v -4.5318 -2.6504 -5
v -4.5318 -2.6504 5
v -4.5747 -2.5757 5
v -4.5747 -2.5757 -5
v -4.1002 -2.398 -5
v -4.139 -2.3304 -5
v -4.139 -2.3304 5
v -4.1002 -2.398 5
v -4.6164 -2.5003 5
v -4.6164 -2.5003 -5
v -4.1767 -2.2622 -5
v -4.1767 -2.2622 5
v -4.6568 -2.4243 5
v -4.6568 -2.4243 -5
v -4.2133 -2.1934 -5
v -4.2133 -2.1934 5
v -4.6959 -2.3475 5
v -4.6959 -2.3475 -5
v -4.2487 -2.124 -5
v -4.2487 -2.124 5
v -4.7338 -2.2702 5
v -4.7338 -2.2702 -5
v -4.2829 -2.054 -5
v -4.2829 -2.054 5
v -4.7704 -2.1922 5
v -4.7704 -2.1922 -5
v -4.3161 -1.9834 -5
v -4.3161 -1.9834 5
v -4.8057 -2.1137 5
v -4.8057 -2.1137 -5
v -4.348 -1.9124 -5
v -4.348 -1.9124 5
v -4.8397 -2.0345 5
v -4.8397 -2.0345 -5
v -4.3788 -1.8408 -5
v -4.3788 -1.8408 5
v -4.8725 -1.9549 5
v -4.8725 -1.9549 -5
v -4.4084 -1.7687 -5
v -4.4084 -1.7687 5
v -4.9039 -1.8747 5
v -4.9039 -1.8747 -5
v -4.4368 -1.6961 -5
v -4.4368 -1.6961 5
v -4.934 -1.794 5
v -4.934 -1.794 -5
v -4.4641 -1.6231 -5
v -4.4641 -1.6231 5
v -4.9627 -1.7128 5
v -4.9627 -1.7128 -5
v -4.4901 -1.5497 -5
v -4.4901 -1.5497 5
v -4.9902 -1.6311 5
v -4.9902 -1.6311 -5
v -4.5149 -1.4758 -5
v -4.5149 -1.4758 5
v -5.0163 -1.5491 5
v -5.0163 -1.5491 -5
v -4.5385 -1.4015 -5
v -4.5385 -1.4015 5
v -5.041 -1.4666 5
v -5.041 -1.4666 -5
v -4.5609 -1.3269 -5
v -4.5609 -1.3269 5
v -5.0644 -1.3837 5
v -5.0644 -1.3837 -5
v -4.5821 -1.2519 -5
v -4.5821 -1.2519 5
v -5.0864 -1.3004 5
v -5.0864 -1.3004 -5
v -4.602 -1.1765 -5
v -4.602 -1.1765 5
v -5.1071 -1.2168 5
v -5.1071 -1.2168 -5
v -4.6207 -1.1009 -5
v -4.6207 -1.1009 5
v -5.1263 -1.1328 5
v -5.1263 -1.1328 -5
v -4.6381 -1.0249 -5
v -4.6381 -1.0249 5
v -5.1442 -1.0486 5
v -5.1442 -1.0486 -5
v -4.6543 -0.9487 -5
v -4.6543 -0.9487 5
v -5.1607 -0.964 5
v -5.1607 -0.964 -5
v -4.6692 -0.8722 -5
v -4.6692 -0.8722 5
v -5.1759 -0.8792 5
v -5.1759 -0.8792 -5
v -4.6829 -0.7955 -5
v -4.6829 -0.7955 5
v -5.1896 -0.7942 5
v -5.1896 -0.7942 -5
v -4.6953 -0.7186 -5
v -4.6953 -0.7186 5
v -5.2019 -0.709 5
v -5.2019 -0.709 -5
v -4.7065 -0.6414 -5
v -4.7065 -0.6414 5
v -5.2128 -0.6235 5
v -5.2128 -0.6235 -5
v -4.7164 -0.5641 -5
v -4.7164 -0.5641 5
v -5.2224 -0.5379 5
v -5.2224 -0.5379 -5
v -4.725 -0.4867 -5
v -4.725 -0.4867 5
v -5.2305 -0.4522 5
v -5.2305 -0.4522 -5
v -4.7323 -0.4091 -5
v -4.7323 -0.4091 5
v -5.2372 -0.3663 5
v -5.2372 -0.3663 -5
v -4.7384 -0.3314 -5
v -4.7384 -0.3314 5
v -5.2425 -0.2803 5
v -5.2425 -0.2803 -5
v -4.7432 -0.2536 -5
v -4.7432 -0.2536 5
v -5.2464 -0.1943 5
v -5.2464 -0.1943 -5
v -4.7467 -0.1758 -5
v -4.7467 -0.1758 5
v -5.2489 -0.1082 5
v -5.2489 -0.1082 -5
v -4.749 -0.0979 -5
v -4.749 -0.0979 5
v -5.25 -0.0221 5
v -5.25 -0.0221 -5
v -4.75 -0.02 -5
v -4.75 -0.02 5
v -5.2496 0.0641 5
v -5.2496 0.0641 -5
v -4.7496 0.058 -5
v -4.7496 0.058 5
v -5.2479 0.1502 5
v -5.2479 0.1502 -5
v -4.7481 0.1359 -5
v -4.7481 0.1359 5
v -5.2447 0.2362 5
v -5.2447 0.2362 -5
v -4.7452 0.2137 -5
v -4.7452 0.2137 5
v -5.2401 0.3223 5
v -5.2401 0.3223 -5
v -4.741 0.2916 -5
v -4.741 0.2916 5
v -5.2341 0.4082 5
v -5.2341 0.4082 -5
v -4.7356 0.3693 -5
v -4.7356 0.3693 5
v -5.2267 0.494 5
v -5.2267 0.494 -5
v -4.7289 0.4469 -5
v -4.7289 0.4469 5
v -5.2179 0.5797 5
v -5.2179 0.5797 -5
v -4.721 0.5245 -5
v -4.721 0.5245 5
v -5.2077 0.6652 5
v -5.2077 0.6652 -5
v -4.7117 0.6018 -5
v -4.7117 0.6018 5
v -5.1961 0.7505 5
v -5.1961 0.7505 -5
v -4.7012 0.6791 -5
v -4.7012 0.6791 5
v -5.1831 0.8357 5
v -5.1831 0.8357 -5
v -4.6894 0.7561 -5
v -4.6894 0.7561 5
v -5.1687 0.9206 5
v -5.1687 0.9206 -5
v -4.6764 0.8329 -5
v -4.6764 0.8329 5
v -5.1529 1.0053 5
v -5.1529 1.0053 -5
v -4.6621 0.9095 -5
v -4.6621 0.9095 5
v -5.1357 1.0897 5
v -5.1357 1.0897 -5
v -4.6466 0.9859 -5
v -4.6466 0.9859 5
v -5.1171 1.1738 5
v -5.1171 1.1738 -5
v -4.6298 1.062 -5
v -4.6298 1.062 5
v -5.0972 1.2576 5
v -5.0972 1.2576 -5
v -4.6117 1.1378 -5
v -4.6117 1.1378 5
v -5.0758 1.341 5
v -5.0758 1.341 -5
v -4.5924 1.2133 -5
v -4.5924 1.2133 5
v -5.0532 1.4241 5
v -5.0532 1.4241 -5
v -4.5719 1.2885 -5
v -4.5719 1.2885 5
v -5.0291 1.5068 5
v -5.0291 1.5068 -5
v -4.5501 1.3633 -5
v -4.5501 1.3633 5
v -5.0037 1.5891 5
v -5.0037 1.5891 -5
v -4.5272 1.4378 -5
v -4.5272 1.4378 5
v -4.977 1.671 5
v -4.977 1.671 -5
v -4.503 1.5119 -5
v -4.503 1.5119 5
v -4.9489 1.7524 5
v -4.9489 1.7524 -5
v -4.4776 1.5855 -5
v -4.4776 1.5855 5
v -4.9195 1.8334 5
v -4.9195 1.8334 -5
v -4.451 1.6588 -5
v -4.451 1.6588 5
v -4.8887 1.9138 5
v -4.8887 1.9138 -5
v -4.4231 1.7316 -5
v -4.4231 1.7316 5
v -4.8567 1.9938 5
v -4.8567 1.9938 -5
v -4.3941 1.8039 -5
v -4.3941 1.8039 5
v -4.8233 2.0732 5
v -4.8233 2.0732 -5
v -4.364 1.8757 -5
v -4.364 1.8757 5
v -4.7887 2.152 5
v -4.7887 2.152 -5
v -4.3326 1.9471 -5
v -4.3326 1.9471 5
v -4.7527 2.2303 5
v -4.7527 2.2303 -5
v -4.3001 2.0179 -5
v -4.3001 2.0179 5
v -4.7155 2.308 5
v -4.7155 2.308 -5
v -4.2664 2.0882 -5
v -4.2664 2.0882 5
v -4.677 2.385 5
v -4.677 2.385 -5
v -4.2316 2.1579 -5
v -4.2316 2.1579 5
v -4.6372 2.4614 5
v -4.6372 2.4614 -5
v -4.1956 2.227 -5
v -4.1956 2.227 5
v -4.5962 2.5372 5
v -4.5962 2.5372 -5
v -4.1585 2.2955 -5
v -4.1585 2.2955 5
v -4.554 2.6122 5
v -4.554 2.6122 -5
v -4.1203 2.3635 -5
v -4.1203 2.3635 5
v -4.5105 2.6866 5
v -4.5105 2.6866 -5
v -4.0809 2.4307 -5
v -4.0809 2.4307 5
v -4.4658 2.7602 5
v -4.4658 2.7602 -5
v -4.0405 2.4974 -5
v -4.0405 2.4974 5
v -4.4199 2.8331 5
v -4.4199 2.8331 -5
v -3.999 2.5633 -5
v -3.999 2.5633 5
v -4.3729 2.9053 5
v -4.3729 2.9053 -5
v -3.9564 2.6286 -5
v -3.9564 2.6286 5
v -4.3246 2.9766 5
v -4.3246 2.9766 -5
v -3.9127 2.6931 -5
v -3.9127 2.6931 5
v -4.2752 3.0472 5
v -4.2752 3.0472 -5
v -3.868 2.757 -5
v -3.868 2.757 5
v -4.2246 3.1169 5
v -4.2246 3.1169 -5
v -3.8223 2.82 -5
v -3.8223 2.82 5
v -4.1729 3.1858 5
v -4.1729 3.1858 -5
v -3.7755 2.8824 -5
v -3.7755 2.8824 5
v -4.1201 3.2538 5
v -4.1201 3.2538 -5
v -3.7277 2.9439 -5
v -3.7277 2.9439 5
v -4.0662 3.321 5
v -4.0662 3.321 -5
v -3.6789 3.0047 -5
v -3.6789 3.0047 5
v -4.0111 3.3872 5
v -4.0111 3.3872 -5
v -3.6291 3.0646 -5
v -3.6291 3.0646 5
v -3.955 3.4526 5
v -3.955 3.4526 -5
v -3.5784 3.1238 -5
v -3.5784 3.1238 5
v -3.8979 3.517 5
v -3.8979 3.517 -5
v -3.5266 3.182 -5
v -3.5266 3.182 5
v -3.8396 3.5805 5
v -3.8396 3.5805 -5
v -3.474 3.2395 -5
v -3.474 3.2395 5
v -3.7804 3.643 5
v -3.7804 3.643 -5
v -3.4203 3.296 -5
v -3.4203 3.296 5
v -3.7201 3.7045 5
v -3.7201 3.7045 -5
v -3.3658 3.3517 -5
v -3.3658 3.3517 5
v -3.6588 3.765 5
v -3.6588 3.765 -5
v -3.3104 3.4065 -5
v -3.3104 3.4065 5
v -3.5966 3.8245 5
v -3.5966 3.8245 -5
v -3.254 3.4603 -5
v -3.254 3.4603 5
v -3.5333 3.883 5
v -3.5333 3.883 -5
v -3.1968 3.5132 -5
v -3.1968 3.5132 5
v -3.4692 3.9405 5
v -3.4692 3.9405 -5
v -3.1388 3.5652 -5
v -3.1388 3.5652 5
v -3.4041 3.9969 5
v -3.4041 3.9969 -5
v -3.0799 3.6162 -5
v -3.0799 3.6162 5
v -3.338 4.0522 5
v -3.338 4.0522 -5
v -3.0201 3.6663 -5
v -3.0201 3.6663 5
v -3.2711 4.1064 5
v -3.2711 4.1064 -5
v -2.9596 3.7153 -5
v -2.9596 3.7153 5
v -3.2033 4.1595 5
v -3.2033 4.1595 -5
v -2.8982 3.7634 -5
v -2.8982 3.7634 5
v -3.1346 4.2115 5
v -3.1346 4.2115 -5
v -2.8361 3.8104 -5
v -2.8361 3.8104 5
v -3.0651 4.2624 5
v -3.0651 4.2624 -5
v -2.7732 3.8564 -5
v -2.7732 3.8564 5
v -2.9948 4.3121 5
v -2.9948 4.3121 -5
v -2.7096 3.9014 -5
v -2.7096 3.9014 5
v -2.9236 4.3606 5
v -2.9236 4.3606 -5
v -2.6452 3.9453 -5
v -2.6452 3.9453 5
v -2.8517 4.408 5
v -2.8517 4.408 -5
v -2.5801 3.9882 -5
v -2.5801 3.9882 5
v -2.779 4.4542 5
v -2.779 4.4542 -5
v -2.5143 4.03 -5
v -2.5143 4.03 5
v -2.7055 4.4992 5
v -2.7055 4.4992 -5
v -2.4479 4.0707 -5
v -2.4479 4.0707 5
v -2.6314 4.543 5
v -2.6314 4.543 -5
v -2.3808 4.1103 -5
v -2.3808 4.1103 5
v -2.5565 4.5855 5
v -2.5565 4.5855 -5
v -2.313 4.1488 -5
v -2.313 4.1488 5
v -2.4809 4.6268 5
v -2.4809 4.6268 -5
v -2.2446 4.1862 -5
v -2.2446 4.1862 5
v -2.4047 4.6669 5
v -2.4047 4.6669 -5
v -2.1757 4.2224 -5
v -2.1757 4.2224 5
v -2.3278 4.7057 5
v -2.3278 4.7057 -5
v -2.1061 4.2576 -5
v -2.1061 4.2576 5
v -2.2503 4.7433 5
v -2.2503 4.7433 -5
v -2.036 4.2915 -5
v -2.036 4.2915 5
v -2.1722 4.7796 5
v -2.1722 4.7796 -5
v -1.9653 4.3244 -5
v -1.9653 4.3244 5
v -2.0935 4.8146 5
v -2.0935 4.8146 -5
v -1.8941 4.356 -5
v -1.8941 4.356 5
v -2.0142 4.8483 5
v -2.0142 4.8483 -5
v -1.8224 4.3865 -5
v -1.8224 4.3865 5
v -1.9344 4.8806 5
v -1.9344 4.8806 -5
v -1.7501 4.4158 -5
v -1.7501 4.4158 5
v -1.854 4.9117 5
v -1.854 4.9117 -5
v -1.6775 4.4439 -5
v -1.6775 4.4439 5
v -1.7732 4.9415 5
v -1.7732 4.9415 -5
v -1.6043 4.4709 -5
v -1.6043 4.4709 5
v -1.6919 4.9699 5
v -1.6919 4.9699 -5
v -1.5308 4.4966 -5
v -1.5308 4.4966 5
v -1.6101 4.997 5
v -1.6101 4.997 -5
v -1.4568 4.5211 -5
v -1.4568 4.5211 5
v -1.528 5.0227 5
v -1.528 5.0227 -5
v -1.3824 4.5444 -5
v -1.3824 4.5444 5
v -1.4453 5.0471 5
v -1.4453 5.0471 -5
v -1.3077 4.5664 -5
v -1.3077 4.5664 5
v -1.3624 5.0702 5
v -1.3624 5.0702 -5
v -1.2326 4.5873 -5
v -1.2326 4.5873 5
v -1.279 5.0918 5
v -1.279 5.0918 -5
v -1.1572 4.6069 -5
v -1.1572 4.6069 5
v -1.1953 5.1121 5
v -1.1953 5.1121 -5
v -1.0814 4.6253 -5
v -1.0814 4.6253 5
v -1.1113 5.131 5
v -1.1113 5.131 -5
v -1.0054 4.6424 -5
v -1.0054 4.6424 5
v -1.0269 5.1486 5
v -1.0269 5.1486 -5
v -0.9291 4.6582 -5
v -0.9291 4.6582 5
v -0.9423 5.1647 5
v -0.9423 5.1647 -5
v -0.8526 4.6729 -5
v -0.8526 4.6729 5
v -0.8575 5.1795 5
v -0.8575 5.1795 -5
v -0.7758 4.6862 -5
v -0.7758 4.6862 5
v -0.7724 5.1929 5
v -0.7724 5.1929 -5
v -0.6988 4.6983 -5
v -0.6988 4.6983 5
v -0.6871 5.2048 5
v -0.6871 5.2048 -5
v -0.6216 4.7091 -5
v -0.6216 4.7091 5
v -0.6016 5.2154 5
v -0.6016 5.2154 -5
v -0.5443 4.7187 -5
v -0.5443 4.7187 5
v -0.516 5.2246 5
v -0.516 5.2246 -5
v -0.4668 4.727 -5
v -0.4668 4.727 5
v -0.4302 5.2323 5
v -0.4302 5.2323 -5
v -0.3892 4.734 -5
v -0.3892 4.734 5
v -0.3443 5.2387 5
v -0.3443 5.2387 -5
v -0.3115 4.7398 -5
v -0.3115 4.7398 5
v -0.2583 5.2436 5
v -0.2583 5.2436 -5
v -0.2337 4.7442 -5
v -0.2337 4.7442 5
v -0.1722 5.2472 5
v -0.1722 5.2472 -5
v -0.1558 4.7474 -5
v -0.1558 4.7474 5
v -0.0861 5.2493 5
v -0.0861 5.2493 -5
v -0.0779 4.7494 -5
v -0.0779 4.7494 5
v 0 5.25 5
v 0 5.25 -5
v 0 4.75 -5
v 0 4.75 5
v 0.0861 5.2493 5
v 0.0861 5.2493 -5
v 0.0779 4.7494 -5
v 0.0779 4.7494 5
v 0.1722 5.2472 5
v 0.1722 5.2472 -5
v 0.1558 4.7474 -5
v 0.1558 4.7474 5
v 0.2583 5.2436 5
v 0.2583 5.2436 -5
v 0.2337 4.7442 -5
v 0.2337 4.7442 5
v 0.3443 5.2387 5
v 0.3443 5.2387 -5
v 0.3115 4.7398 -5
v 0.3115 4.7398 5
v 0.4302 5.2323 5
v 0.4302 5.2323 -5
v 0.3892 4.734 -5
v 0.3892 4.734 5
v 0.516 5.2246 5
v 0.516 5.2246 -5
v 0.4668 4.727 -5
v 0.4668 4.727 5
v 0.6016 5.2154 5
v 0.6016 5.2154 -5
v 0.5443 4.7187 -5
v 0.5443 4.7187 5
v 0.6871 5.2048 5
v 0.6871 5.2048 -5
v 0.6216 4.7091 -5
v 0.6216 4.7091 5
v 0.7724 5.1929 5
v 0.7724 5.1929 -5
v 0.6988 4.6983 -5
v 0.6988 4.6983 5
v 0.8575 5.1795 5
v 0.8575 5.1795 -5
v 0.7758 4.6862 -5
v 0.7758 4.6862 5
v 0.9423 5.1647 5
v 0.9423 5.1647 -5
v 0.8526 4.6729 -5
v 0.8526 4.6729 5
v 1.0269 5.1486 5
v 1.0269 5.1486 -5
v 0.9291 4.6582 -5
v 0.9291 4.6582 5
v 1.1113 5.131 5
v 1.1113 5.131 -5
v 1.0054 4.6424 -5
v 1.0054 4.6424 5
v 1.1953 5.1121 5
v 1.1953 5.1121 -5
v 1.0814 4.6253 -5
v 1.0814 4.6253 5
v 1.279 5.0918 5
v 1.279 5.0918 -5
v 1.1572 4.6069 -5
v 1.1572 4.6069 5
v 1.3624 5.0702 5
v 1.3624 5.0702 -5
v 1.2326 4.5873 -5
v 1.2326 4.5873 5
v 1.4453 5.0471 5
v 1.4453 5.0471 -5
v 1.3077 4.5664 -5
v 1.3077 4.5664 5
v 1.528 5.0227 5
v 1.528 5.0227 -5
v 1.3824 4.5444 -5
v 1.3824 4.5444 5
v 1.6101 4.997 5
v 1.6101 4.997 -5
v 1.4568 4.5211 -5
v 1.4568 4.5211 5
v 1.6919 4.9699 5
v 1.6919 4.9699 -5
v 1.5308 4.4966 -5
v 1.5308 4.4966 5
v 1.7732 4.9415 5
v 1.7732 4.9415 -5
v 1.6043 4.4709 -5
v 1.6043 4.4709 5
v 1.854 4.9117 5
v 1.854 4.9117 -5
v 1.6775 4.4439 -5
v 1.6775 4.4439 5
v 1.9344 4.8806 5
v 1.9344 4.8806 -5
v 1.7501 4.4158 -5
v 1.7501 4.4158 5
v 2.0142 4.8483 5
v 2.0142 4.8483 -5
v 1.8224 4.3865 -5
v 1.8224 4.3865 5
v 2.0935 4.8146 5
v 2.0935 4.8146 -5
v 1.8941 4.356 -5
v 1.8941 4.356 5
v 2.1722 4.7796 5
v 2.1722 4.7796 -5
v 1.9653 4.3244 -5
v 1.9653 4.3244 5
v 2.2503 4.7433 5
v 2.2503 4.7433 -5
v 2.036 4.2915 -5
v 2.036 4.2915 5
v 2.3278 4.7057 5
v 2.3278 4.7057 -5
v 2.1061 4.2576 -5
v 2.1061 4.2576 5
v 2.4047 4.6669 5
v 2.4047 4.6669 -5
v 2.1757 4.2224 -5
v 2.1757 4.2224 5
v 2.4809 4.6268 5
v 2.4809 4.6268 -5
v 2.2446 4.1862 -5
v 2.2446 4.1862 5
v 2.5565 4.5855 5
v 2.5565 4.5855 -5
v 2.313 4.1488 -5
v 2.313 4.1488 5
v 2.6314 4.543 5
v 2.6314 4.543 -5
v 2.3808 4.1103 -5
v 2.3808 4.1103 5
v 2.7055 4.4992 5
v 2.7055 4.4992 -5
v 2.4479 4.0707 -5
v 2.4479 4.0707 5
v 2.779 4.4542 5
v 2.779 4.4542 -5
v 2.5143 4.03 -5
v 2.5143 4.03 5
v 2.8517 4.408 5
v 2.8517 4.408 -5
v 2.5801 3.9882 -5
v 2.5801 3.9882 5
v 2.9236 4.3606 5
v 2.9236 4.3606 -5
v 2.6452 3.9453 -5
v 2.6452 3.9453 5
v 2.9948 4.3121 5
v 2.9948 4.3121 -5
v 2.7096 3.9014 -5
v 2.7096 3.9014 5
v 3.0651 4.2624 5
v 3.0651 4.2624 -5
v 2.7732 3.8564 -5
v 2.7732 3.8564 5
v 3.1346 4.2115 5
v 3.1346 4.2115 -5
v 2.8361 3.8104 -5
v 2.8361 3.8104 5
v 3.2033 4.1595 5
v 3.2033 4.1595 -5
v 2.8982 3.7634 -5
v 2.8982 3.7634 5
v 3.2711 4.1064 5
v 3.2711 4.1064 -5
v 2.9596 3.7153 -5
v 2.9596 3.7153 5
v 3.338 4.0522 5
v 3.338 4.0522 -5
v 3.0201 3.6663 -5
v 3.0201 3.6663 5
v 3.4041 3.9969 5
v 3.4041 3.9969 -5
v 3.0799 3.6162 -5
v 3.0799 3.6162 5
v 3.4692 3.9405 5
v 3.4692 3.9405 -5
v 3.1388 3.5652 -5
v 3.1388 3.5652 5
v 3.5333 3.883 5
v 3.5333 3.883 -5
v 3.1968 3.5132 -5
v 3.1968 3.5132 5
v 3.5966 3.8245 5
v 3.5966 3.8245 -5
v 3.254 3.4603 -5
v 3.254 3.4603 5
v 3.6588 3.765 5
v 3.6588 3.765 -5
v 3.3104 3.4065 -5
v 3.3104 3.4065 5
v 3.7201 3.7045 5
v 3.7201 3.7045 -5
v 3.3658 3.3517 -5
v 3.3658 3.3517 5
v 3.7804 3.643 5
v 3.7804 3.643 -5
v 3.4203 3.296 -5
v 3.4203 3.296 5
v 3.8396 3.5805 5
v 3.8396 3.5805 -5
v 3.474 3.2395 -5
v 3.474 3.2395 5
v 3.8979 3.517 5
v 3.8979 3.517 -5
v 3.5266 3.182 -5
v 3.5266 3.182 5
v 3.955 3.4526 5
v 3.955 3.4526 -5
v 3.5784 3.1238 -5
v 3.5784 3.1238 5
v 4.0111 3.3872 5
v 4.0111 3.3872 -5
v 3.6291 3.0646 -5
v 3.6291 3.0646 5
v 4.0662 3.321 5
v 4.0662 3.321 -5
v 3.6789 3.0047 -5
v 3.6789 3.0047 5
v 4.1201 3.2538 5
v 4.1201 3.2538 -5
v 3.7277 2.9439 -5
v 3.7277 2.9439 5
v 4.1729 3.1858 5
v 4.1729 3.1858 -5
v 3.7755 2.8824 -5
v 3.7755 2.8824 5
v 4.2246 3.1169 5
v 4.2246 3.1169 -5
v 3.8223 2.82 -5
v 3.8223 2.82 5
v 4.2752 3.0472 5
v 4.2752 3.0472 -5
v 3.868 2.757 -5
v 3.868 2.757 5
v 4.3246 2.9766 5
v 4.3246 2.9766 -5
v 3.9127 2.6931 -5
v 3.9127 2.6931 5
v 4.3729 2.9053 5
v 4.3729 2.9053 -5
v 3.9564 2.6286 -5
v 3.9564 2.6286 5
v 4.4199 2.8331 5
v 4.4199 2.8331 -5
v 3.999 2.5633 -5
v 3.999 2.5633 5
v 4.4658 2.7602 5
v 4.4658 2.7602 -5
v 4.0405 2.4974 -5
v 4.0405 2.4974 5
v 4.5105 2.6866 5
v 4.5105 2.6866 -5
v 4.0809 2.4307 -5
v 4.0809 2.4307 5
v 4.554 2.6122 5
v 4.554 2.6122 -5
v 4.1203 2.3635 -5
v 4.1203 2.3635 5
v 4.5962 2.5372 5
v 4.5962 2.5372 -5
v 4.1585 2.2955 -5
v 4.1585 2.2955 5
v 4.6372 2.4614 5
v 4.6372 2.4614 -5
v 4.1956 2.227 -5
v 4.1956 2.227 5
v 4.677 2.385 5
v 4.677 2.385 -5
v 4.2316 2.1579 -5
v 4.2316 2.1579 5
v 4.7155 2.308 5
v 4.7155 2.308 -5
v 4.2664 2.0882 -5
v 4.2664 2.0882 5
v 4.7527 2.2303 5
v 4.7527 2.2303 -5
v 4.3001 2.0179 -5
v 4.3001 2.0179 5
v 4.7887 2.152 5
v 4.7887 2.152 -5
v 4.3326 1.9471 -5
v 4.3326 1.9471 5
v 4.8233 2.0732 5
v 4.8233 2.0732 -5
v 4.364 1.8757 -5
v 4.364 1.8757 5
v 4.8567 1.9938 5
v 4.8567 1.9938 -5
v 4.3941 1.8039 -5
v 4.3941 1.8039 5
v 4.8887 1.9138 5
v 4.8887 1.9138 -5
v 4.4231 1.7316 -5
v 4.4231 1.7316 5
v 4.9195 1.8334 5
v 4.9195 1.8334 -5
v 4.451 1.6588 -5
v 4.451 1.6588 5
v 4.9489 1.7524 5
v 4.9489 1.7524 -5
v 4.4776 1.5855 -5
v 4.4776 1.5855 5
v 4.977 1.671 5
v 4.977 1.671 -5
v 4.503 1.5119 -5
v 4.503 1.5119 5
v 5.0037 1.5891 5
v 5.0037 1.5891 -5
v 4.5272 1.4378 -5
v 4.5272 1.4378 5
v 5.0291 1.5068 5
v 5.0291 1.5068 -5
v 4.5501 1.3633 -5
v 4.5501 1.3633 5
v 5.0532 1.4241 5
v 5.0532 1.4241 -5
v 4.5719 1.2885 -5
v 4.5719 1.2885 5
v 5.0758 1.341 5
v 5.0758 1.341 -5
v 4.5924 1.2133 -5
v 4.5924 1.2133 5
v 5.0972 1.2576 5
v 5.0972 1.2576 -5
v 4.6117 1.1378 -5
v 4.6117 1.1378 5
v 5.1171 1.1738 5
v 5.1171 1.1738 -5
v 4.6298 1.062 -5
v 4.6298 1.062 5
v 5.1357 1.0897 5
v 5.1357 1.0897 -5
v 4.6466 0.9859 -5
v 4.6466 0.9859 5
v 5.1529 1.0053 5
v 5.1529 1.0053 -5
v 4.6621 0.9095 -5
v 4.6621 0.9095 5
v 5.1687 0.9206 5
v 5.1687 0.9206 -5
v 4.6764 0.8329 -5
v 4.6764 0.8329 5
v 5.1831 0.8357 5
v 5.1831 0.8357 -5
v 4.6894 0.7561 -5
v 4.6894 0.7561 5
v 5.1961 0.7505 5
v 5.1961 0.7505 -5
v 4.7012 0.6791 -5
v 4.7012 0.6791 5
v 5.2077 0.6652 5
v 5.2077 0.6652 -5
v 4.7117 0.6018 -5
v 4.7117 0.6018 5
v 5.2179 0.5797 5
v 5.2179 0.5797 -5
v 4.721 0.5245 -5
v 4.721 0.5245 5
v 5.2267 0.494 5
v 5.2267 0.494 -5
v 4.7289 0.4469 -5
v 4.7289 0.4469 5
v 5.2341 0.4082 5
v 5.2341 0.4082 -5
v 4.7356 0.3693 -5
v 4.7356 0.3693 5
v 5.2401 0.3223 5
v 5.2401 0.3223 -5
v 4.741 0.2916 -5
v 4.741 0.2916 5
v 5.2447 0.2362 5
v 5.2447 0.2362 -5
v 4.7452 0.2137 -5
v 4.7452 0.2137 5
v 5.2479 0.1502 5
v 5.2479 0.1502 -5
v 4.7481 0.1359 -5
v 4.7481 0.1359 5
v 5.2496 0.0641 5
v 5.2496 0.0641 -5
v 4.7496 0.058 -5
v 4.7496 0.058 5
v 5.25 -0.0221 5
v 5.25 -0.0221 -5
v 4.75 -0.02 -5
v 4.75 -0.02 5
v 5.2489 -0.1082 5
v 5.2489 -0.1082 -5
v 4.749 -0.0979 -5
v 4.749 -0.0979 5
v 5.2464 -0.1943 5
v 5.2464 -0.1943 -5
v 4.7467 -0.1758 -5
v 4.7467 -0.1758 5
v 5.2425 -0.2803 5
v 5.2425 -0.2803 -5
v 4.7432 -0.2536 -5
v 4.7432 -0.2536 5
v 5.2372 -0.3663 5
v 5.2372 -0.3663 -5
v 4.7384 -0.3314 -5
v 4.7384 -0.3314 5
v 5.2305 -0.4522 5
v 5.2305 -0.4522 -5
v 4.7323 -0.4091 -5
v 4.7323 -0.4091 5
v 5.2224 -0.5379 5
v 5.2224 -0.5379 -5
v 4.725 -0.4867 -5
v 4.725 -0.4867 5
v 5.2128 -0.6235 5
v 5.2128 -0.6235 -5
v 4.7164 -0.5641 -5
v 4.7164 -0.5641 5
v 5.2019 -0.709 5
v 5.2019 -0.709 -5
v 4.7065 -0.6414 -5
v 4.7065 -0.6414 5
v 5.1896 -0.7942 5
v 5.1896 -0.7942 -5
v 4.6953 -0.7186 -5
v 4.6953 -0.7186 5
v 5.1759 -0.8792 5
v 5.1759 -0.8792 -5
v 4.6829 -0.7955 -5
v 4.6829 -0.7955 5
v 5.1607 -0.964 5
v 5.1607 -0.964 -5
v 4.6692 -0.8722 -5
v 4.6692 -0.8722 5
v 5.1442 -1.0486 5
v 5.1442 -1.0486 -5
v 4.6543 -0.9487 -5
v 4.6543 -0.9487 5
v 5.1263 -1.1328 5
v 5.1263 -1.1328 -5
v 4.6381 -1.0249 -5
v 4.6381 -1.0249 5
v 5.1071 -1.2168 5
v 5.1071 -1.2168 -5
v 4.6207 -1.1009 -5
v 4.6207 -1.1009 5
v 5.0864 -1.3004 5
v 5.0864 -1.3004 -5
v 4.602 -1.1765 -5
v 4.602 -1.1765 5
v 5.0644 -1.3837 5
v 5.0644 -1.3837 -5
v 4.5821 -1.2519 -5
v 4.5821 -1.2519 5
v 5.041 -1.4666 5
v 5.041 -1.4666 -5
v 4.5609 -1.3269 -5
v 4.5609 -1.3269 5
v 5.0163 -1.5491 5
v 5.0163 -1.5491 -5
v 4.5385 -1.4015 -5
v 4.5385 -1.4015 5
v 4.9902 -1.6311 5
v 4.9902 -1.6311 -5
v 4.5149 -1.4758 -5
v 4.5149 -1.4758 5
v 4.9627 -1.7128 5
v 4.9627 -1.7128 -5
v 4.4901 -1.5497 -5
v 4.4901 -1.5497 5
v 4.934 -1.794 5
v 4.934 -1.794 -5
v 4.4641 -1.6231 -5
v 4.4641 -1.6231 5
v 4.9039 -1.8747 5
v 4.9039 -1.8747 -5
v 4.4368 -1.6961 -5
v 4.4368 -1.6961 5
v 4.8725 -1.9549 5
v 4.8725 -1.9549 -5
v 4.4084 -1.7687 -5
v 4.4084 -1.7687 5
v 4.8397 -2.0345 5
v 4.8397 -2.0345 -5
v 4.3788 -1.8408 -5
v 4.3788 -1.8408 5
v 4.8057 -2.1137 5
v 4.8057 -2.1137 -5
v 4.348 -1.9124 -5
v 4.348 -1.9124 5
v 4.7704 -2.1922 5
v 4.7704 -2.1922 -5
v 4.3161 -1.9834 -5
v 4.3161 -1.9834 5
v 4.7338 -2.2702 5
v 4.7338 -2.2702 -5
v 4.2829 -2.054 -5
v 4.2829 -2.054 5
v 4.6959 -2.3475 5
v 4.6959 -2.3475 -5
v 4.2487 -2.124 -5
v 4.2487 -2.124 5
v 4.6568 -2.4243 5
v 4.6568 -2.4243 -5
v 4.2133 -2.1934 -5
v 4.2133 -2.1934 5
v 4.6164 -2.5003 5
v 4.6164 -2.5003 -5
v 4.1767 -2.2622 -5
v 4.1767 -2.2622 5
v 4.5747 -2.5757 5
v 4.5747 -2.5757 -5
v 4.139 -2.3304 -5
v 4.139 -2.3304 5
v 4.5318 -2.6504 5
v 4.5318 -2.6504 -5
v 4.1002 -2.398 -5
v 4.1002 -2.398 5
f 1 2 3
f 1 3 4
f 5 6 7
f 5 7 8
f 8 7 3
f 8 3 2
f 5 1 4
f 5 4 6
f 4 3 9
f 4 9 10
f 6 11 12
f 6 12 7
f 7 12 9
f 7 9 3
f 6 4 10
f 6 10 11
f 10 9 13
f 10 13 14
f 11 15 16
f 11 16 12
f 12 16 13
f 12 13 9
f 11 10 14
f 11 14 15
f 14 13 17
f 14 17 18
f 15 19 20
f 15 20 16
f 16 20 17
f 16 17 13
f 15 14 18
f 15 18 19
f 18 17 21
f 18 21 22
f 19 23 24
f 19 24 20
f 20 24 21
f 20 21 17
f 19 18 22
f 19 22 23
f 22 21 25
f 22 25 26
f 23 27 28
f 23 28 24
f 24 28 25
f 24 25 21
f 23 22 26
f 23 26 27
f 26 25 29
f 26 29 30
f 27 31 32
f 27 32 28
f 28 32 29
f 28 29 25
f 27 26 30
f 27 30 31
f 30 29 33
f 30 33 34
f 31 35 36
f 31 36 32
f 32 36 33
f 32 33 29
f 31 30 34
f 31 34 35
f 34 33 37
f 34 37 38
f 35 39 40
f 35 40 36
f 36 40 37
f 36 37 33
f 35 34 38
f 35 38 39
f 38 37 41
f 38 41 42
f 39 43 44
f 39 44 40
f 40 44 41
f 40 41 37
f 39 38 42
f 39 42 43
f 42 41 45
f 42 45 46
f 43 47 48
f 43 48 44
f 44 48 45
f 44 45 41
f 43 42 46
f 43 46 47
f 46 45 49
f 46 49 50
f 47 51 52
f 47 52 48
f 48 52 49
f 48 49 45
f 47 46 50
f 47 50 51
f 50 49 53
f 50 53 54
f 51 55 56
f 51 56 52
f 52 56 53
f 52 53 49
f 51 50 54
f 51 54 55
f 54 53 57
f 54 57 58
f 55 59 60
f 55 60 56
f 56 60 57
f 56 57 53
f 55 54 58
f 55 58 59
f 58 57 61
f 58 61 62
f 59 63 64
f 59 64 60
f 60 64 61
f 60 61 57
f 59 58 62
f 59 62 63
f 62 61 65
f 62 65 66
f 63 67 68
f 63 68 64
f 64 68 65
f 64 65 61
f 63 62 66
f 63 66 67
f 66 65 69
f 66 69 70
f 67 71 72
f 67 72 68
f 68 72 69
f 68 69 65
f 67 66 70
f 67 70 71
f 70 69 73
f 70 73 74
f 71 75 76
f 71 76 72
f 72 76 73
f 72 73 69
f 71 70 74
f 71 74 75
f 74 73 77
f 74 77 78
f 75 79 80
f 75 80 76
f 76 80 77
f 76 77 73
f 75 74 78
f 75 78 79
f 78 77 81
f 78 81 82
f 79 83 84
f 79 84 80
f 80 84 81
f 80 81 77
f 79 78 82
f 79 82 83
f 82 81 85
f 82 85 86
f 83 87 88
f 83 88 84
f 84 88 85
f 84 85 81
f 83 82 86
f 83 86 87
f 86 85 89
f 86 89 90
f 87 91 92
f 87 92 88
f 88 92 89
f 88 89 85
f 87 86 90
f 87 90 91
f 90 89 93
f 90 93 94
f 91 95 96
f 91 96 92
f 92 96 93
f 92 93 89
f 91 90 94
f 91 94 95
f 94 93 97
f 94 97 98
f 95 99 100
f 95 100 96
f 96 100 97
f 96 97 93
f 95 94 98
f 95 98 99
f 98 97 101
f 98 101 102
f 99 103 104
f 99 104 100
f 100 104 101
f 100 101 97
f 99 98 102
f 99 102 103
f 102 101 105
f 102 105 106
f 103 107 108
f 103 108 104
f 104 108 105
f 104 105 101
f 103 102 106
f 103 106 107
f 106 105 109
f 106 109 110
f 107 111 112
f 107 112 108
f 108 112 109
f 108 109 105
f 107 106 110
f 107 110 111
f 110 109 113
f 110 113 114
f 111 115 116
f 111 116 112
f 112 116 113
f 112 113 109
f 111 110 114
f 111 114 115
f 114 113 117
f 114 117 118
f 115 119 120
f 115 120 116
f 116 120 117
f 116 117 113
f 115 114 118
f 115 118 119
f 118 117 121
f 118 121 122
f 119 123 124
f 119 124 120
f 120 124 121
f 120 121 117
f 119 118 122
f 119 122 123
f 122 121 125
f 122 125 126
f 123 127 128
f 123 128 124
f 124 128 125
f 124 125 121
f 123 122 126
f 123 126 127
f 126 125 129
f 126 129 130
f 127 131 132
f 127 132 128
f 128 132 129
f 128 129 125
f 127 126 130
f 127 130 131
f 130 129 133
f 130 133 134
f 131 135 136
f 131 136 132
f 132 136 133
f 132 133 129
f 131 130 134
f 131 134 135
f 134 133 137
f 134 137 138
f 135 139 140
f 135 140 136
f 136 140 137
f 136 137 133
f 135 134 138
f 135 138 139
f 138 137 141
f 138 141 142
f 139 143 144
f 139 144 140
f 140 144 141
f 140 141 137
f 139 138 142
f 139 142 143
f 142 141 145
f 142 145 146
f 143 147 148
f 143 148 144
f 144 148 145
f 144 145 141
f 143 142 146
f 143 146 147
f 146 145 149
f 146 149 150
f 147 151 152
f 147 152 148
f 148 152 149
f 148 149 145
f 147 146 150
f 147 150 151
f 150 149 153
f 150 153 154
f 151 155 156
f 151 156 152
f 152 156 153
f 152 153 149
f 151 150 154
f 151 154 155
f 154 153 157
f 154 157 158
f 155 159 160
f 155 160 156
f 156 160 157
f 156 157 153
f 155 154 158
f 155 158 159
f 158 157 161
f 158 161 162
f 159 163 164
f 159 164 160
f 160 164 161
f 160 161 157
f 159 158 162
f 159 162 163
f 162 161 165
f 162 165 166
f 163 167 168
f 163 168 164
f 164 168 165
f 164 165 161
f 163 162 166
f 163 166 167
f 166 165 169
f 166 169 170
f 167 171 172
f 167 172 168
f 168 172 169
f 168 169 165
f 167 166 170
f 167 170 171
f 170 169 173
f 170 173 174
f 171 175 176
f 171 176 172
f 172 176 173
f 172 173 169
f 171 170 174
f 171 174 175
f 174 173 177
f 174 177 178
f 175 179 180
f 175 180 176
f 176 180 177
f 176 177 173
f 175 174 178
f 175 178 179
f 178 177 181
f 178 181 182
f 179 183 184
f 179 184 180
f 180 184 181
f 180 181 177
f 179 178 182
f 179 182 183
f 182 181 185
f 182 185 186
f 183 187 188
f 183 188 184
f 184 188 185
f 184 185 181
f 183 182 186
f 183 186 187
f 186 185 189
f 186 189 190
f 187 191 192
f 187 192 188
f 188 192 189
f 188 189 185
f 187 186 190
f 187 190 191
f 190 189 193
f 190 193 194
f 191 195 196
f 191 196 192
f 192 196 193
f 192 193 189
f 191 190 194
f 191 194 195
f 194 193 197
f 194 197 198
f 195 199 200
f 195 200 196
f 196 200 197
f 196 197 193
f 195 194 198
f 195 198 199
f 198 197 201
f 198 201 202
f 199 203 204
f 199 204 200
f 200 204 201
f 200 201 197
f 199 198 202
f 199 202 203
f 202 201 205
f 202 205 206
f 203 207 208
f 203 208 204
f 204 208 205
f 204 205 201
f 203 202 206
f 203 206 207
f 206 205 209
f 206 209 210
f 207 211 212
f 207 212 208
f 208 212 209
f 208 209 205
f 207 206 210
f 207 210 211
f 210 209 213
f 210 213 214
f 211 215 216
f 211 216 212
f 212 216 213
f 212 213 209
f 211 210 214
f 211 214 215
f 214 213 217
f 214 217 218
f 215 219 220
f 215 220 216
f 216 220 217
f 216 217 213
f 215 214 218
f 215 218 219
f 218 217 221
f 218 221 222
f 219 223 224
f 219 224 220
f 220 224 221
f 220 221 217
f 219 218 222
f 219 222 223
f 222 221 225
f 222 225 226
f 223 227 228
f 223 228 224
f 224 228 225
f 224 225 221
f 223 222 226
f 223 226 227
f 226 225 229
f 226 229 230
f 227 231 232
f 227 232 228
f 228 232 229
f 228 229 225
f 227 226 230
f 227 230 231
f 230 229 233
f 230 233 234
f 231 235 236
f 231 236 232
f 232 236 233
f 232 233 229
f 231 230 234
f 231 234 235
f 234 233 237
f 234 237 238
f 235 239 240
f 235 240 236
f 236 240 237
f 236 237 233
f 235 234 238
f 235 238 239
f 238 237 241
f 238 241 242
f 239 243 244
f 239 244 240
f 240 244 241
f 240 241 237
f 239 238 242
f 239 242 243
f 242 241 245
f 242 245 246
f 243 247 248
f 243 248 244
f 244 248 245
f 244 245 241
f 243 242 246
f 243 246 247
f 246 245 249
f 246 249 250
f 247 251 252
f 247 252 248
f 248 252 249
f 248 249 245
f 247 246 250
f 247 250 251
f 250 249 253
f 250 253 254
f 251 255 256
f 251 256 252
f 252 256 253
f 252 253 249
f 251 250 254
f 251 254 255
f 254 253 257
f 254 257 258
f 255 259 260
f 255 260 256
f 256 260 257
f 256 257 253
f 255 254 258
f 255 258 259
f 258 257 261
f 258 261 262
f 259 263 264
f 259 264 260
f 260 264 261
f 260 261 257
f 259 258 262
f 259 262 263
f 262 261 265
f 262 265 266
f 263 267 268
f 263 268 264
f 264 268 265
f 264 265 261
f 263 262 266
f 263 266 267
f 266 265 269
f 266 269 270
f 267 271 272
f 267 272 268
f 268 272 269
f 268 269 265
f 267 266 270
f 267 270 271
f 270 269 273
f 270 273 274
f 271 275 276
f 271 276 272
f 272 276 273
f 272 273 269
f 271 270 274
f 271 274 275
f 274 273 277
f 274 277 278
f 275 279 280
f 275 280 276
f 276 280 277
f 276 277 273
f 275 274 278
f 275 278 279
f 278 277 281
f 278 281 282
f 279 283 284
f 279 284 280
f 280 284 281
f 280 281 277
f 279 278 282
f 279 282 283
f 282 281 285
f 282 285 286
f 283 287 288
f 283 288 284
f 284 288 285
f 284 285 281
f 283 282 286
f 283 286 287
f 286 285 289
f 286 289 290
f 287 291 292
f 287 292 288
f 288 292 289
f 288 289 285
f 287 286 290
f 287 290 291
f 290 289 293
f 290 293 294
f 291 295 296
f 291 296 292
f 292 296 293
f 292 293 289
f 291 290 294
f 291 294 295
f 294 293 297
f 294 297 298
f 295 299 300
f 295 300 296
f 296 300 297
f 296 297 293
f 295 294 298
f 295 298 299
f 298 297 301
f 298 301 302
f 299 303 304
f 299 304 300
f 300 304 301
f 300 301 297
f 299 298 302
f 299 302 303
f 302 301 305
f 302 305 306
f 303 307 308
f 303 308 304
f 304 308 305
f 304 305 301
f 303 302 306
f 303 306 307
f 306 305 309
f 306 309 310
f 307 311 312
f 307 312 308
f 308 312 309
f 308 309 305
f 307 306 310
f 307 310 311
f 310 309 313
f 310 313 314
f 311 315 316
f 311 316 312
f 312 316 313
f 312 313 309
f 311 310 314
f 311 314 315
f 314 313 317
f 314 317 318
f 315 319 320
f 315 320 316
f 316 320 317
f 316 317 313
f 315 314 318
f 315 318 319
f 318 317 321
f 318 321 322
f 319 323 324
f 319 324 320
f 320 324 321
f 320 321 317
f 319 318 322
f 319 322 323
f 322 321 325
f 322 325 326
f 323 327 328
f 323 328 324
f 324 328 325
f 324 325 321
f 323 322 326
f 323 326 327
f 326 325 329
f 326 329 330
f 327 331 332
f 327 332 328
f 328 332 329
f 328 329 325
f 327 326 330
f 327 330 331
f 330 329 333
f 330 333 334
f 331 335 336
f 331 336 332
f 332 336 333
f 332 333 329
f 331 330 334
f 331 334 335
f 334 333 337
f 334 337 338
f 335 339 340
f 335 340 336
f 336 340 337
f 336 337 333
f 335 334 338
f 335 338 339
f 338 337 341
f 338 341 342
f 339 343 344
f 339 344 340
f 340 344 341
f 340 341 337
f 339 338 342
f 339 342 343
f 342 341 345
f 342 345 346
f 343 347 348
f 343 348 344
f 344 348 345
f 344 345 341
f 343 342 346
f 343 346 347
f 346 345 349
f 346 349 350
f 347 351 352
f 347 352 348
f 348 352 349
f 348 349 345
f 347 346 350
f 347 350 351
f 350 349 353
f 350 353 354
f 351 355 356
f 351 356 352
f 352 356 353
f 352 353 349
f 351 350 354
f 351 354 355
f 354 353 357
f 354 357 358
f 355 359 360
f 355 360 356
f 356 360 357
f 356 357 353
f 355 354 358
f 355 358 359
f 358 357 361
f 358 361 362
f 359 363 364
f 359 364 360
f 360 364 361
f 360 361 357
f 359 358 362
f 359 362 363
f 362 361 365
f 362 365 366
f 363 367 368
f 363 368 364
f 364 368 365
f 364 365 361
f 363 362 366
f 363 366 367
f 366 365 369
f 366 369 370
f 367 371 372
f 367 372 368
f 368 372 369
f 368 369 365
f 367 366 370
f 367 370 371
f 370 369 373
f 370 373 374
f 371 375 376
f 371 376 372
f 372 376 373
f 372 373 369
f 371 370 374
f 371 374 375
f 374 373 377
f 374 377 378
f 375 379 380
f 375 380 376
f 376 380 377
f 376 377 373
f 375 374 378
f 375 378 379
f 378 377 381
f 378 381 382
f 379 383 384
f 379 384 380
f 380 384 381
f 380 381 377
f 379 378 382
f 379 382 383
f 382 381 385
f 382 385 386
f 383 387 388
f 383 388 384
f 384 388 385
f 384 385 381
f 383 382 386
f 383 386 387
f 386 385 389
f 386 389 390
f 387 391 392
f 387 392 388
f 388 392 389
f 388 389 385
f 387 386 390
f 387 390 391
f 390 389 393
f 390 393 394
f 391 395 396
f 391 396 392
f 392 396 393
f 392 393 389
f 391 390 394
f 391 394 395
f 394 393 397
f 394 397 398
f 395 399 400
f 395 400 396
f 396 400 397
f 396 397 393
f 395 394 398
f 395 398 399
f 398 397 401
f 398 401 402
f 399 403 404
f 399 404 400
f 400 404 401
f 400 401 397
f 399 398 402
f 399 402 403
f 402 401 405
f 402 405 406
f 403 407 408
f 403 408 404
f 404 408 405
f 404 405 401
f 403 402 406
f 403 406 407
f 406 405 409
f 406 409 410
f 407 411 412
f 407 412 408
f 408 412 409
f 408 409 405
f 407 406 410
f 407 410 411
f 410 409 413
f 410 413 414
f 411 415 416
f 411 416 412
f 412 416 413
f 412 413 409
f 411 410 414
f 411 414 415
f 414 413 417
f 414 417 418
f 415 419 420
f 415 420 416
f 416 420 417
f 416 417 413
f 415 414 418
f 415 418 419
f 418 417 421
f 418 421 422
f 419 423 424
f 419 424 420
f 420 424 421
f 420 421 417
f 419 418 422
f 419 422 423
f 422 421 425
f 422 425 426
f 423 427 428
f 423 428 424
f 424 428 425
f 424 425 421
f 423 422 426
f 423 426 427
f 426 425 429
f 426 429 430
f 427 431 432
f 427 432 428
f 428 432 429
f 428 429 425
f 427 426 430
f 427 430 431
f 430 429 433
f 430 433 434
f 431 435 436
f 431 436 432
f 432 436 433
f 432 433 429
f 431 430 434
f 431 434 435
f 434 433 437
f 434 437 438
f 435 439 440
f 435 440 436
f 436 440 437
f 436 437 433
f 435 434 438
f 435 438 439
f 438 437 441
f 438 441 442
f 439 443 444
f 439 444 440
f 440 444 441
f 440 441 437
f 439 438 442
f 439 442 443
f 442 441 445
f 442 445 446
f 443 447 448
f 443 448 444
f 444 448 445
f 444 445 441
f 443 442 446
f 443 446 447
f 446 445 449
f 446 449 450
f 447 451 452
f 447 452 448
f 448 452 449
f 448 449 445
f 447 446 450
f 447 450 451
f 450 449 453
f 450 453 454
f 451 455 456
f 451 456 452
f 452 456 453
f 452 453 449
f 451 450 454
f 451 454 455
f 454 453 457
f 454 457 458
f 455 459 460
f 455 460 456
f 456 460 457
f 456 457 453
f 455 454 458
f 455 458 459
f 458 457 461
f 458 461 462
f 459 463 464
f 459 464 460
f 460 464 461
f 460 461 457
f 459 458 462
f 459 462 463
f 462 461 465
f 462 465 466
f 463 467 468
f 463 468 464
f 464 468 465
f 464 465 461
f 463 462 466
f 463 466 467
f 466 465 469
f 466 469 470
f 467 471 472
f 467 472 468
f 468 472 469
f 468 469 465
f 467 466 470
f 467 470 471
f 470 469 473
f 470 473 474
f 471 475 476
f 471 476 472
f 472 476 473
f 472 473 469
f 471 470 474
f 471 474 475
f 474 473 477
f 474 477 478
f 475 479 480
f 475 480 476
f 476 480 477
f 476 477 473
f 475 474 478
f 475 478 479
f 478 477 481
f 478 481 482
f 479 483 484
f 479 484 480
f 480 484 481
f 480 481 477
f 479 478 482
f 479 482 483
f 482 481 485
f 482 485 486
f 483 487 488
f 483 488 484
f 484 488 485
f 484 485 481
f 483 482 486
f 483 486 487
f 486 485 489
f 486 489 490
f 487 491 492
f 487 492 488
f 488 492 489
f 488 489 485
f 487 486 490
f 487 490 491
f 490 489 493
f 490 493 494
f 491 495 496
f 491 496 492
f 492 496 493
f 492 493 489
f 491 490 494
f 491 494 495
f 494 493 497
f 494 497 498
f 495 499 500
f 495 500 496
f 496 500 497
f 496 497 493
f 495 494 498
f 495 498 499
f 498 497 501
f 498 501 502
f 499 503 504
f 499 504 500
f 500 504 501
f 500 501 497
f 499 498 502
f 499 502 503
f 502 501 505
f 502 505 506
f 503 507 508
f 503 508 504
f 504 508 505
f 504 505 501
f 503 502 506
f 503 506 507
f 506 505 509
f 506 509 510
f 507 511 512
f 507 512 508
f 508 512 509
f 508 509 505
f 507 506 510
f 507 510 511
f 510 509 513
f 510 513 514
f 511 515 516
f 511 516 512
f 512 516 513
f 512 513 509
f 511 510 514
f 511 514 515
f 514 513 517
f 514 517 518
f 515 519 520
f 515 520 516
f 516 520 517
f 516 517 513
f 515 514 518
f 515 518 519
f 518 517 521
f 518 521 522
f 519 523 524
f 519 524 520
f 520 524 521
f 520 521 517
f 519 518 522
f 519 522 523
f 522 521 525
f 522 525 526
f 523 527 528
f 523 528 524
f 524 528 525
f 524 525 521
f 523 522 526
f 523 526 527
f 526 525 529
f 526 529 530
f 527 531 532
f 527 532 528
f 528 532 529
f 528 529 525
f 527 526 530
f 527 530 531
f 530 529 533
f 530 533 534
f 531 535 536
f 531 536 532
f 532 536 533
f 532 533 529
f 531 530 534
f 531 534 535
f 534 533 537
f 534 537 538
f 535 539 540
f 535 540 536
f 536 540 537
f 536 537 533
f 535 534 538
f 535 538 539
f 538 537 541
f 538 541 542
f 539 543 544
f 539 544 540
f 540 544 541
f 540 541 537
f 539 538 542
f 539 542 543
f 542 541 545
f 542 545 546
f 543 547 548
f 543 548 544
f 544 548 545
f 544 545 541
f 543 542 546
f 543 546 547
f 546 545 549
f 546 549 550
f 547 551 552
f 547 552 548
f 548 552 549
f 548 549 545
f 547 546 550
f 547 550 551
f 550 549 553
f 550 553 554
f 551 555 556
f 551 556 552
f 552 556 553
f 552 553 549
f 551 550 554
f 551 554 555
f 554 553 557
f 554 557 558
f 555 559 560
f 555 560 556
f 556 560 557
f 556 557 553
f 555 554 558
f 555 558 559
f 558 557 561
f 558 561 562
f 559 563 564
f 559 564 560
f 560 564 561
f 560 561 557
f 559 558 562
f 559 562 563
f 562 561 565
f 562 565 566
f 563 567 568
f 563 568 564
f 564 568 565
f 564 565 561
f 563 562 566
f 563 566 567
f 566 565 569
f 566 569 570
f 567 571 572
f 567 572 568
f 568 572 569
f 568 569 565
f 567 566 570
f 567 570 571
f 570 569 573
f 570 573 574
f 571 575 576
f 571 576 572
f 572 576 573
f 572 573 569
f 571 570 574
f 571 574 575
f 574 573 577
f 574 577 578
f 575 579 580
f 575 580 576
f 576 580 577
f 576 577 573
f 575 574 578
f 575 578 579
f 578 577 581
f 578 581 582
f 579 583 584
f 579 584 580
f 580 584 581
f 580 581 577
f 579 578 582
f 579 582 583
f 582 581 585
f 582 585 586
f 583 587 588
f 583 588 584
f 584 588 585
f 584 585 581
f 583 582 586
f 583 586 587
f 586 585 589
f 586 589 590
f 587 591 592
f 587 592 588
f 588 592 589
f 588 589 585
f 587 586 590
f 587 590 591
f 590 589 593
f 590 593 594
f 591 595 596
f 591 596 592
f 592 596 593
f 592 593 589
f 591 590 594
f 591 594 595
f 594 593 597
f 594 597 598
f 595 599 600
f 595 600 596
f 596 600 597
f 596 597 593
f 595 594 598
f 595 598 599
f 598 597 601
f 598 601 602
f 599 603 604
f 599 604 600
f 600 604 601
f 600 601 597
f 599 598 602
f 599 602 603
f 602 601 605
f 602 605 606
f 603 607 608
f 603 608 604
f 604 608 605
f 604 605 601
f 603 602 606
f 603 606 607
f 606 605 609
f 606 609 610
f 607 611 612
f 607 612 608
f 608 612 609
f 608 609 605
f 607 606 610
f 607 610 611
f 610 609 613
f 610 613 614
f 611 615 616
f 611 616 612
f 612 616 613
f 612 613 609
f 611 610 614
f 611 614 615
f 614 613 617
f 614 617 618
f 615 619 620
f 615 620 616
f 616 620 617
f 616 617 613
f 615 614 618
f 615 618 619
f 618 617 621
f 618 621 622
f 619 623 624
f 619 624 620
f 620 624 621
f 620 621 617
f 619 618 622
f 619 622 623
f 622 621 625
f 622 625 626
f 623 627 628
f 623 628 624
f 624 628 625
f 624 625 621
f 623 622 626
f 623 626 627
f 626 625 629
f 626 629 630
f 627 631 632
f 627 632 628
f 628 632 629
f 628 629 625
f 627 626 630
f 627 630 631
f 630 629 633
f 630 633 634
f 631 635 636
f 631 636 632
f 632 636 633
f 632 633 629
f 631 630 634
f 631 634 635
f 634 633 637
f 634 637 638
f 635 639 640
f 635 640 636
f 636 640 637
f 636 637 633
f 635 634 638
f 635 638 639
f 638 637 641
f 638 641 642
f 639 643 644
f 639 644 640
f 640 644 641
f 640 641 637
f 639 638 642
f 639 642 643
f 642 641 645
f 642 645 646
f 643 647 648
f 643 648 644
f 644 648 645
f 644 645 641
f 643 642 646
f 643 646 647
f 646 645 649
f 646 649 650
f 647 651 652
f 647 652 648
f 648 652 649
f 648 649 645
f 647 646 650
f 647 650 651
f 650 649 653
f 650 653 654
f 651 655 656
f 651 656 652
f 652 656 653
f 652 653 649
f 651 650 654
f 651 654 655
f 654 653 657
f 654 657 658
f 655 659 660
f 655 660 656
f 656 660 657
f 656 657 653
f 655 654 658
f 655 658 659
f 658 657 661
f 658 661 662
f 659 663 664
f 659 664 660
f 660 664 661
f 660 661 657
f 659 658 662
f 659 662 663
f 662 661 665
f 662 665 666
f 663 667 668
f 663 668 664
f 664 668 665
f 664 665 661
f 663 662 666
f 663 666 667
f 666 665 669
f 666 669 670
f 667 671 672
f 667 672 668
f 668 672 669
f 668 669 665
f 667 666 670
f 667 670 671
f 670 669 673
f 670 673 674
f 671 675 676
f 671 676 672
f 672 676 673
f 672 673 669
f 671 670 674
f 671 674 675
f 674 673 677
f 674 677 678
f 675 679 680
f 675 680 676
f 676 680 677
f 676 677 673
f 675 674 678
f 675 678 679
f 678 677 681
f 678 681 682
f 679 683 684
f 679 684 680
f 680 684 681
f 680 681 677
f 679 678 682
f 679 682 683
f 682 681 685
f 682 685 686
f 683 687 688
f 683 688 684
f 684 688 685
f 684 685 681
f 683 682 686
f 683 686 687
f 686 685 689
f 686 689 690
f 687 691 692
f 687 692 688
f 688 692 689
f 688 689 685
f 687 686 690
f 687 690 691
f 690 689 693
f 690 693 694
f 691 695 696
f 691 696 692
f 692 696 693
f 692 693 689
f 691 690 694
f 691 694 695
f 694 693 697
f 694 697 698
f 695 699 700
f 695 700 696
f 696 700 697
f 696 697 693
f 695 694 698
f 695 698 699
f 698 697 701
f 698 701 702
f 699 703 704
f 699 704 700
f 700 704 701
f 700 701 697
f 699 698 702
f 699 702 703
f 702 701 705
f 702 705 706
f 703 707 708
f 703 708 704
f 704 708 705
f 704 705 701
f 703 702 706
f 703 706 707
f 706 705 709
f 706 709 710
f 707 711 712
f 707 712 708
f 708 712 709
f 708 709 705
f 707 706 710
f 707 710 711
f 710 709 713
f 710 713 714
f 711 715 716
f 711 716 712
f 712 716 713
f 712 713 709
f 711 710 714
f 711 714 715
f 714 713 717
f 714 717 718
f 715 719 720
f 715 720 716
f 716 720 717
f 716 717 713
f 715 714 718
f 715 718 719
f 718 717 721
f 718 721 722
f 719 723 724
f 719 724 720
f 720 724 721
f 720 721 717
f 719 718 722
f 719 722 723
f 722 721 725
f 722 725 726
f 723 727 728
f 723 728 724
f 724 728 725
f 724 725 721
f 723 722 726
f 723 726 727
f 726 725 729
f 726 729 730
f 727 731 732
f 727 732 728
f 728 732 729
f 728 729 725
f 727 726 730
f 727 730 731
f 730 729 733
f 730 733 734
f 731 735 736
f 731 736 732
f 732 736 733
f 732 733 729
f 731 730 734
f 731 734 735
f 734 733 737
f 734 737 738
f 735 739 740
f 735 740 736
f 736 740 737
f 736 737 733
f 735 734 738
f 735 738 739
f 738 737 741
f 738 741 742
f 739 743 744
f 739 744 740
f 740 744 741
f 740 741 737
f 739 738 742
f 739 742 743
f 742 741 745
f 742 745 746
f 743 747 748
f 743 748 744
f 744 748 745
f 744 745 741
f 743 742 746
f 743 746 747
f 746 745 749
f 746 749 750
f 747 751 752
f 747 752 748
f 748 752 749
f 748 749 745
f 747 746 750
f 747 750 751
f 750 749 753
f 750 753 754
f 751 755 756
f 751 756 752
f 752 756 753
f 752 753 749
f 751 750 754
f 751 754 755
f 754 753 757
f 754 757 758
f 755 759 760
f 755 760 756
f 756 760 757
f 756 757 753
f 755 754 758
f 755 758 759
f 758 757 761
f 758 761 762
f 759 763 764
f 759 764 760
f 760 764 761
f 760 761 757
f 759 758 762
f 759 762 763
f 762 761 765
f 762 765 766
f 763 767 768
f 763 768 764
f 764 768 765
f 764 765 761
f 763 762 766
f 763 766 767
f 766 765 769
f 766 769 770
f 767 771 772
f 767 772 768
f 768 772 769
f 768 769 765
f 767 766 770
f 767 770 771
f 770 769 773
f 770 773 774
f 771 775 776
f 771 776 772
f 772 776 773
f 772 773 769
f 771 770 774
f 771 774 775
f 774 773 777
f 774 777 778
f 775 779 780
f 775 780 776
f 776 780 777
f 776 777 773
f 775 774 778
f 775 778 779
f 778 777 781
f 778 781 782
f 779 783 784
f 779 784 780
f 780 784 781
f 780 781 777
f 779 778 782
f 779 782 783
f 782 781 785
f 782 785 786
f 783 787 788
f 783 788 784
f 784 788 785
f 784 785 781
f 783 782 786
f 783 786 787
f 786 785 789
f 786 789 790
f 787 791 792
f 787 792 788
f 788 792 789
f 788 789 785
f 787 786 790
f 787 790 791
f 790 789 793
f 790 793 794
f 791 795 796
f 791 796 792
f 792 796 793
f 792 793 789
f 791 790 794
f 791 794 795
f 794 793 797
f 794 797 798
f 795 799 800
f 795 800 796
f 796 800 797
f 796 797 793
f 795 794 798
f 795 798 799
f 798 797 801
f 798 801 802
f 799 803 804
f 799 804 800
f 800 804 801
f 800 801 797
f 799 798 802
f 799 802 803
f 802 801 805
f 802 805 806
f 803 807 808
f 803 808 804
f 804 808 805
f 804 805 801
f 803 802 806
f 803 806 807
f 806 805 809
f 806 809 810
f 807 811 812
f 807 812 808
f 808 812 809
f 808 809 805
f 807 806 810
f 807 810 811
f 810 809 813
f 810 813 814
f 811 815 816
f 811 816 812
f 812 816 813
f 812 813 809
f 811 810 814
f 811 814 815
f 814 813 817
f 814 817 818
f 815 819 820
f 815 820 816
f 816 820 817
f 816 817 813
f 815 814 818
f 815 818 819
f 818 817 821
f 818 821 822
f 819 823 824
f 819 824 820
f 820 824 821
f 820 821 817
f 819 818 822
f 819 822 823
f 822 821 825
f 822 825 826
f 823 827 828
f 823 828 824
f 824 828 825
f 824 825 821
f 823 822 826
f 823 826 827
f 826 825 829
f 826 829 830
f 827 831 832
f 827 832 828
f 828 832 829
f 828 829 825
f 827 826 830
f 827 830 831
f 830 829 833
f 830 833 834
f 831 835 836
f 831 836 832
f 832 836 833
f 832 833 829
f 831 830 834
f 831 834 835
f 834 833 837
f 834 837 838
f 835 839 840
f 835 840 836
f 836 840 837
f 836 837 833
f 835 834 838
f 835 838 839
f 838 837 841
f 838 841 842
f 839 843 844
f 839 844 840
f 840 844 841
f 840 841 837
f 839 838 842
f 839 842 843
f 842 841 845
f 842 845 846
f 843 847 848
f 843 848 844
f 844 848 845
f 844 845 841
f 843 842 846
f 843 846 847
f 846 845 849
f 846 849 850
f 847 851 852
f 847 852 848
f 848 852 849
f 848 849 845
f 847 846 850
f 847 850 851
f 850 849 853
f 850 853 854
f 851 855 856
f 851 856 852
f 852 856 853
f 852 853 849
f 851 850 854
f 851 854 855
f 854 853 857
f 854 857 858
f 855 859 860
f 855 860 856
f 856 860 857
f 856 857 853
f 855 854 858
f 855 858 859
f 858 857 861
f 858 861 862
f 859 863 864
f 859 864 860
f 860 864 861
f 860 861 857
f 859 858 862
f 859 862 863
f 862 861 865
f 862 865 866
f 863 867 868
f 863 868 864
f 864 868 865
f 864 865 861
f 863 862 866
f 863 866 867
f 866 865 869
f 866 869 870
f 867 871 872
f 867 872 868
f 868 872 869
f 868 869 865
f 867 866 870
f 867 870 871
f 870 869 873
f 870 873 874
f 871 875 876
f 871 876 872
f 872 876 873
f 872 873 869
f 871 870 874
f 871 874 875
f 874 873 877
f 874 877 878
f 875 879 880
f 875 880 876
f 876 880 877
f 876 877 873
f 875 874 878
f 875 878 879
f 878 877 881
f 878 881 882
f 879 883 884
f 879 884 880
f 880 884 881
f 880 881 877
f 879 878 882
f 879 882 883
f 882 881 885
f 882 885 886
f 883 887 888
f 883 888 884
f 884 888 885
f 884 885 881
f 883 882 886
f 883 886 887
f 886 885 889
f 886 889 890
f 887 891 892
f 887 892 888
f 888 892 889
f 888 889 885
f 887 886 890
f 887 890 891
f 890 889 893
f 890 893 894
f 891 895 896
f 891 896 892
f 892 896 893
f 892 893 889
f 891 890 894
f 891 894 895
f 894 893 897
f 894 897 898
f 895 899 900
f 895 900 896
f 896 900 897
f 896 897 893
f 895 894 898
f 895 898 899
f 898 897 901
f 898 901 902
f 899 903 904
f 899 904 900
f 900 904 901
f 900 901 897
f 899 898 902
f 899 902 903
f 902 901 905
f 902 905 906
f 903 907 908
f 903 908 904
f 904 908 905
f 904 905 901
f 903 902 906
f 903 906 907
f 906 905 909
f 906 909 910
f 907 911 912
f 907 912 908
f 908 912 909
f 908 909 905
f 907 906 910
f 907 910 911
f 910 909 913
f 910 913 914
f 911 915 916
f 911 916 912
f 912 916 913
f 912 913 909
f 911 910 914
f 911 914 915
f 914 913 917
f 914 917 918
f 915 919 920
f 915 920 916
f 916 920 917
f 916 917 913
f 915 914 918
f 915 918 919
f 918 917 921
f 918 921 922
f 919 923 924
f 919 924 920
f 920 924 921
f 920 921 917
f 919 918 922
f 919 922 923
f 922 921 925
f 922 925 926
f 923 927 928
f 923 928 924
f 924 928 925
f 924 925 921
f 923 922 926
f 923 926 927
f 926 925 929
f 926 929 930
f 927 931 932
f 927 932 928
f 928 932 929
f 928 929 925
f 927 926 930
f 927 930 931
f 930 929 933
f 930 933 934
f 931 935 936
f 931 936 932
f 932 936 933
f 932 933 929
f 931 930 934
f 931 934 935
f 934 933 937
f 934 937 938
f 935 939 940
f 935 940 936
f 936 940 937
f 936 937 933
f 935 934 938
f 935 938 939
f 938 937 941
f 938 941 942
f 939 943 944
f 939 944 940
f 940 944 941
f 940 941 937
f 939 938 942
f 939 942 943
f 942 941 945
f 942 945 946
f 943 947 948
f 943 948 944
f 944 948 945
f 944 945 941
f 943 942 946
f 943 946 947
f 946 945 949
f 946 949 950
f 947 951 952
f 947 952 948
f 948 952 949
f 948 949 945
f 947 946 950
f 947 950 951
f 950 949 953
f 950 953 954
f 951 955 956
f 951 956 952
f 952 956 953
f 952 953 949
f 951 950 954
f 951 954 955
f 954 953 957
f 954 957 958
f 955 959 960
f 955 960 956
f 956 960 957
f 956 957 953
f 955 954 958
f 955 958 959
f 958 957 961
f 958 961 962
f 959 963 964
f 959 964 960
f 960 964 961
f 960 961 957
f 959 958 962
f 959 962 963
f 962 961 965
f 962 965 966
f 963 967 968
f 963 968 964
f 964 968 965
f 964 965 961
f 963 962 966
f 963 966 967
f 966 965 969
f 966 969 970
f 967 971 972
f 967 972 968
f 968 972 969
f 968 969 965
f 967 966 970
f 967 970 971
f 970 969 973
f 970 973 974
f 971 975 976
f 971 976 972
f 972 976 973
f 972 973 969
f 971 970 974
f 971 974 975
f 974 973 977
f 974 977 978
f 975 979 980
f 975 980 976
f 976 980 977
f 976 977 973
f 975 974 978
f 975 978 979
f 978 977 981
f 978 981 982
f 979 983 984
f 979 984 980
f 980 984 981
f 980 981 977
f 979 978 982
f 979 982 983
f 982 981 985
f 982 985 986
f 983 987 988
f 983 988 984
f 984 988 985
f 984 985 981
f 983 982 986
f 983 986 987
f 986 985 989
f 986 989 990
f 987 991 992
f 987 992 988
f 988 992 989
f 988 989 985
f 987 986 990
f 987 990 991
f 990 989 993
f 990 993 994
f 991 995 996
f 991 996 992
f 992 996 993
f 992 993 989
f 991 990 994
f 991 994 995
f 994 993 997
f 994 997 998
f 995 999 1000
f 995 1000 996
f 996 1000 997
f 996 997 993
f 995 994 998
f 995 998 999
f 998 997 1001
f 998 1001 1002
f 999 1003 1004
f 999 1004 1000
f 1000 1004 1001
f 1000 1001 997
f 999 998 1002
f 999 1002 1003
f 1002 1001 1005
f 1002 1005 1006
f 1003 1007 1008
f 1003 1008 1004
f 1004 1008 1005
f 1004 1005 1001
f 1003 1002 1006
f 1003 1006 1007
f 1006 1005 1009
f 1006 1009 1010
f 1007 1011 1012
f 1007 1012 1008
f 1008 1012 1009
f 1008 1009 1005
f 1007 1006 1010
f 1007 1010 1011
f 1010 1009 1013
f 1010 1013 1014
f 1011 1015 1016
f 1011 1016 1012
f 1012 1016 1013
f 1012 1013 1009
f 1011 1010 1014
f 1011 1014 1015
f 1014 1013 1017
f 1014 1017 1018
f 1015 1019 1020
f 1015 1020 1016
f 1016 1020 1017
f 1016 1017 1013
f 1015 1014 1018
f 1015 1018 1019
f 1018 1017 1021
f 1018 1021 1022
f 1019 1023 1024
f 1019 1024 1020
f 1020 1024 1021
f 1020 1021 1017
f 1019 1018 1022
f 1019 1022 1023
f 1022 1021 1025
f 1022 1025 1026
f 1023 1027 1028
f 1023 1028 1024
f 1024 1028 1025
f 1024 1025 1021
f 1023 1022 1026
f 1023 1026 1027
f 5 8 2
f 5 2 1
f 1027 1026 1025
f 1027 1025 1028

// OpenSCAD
// Enlarged FREE strip only; units mm. No snow performance is demonstrated.
// BVP contact uses a centreline idealization; this finite CAD is NOT its exact contact solution.
scale_factor=100;
Rs=0.05*scale_factor;
t=0.005*scale_factor;
b=0.1*scale_factor;
phi=2.1;
N=256;
function pt(r,i)=[r*sin((-phi+2*phi*i/N)*180/PI),r*cos((-phi+2*phi*i/N)*180/PI)];
points=concat([for(i=[0:N]) pt(Rs+t/2,i)],[for(i=[N:-1:0]) pt(Rs-t/2,i)]);
linear_extrude(height=b,center=true,convexity=10) polygon(points);
